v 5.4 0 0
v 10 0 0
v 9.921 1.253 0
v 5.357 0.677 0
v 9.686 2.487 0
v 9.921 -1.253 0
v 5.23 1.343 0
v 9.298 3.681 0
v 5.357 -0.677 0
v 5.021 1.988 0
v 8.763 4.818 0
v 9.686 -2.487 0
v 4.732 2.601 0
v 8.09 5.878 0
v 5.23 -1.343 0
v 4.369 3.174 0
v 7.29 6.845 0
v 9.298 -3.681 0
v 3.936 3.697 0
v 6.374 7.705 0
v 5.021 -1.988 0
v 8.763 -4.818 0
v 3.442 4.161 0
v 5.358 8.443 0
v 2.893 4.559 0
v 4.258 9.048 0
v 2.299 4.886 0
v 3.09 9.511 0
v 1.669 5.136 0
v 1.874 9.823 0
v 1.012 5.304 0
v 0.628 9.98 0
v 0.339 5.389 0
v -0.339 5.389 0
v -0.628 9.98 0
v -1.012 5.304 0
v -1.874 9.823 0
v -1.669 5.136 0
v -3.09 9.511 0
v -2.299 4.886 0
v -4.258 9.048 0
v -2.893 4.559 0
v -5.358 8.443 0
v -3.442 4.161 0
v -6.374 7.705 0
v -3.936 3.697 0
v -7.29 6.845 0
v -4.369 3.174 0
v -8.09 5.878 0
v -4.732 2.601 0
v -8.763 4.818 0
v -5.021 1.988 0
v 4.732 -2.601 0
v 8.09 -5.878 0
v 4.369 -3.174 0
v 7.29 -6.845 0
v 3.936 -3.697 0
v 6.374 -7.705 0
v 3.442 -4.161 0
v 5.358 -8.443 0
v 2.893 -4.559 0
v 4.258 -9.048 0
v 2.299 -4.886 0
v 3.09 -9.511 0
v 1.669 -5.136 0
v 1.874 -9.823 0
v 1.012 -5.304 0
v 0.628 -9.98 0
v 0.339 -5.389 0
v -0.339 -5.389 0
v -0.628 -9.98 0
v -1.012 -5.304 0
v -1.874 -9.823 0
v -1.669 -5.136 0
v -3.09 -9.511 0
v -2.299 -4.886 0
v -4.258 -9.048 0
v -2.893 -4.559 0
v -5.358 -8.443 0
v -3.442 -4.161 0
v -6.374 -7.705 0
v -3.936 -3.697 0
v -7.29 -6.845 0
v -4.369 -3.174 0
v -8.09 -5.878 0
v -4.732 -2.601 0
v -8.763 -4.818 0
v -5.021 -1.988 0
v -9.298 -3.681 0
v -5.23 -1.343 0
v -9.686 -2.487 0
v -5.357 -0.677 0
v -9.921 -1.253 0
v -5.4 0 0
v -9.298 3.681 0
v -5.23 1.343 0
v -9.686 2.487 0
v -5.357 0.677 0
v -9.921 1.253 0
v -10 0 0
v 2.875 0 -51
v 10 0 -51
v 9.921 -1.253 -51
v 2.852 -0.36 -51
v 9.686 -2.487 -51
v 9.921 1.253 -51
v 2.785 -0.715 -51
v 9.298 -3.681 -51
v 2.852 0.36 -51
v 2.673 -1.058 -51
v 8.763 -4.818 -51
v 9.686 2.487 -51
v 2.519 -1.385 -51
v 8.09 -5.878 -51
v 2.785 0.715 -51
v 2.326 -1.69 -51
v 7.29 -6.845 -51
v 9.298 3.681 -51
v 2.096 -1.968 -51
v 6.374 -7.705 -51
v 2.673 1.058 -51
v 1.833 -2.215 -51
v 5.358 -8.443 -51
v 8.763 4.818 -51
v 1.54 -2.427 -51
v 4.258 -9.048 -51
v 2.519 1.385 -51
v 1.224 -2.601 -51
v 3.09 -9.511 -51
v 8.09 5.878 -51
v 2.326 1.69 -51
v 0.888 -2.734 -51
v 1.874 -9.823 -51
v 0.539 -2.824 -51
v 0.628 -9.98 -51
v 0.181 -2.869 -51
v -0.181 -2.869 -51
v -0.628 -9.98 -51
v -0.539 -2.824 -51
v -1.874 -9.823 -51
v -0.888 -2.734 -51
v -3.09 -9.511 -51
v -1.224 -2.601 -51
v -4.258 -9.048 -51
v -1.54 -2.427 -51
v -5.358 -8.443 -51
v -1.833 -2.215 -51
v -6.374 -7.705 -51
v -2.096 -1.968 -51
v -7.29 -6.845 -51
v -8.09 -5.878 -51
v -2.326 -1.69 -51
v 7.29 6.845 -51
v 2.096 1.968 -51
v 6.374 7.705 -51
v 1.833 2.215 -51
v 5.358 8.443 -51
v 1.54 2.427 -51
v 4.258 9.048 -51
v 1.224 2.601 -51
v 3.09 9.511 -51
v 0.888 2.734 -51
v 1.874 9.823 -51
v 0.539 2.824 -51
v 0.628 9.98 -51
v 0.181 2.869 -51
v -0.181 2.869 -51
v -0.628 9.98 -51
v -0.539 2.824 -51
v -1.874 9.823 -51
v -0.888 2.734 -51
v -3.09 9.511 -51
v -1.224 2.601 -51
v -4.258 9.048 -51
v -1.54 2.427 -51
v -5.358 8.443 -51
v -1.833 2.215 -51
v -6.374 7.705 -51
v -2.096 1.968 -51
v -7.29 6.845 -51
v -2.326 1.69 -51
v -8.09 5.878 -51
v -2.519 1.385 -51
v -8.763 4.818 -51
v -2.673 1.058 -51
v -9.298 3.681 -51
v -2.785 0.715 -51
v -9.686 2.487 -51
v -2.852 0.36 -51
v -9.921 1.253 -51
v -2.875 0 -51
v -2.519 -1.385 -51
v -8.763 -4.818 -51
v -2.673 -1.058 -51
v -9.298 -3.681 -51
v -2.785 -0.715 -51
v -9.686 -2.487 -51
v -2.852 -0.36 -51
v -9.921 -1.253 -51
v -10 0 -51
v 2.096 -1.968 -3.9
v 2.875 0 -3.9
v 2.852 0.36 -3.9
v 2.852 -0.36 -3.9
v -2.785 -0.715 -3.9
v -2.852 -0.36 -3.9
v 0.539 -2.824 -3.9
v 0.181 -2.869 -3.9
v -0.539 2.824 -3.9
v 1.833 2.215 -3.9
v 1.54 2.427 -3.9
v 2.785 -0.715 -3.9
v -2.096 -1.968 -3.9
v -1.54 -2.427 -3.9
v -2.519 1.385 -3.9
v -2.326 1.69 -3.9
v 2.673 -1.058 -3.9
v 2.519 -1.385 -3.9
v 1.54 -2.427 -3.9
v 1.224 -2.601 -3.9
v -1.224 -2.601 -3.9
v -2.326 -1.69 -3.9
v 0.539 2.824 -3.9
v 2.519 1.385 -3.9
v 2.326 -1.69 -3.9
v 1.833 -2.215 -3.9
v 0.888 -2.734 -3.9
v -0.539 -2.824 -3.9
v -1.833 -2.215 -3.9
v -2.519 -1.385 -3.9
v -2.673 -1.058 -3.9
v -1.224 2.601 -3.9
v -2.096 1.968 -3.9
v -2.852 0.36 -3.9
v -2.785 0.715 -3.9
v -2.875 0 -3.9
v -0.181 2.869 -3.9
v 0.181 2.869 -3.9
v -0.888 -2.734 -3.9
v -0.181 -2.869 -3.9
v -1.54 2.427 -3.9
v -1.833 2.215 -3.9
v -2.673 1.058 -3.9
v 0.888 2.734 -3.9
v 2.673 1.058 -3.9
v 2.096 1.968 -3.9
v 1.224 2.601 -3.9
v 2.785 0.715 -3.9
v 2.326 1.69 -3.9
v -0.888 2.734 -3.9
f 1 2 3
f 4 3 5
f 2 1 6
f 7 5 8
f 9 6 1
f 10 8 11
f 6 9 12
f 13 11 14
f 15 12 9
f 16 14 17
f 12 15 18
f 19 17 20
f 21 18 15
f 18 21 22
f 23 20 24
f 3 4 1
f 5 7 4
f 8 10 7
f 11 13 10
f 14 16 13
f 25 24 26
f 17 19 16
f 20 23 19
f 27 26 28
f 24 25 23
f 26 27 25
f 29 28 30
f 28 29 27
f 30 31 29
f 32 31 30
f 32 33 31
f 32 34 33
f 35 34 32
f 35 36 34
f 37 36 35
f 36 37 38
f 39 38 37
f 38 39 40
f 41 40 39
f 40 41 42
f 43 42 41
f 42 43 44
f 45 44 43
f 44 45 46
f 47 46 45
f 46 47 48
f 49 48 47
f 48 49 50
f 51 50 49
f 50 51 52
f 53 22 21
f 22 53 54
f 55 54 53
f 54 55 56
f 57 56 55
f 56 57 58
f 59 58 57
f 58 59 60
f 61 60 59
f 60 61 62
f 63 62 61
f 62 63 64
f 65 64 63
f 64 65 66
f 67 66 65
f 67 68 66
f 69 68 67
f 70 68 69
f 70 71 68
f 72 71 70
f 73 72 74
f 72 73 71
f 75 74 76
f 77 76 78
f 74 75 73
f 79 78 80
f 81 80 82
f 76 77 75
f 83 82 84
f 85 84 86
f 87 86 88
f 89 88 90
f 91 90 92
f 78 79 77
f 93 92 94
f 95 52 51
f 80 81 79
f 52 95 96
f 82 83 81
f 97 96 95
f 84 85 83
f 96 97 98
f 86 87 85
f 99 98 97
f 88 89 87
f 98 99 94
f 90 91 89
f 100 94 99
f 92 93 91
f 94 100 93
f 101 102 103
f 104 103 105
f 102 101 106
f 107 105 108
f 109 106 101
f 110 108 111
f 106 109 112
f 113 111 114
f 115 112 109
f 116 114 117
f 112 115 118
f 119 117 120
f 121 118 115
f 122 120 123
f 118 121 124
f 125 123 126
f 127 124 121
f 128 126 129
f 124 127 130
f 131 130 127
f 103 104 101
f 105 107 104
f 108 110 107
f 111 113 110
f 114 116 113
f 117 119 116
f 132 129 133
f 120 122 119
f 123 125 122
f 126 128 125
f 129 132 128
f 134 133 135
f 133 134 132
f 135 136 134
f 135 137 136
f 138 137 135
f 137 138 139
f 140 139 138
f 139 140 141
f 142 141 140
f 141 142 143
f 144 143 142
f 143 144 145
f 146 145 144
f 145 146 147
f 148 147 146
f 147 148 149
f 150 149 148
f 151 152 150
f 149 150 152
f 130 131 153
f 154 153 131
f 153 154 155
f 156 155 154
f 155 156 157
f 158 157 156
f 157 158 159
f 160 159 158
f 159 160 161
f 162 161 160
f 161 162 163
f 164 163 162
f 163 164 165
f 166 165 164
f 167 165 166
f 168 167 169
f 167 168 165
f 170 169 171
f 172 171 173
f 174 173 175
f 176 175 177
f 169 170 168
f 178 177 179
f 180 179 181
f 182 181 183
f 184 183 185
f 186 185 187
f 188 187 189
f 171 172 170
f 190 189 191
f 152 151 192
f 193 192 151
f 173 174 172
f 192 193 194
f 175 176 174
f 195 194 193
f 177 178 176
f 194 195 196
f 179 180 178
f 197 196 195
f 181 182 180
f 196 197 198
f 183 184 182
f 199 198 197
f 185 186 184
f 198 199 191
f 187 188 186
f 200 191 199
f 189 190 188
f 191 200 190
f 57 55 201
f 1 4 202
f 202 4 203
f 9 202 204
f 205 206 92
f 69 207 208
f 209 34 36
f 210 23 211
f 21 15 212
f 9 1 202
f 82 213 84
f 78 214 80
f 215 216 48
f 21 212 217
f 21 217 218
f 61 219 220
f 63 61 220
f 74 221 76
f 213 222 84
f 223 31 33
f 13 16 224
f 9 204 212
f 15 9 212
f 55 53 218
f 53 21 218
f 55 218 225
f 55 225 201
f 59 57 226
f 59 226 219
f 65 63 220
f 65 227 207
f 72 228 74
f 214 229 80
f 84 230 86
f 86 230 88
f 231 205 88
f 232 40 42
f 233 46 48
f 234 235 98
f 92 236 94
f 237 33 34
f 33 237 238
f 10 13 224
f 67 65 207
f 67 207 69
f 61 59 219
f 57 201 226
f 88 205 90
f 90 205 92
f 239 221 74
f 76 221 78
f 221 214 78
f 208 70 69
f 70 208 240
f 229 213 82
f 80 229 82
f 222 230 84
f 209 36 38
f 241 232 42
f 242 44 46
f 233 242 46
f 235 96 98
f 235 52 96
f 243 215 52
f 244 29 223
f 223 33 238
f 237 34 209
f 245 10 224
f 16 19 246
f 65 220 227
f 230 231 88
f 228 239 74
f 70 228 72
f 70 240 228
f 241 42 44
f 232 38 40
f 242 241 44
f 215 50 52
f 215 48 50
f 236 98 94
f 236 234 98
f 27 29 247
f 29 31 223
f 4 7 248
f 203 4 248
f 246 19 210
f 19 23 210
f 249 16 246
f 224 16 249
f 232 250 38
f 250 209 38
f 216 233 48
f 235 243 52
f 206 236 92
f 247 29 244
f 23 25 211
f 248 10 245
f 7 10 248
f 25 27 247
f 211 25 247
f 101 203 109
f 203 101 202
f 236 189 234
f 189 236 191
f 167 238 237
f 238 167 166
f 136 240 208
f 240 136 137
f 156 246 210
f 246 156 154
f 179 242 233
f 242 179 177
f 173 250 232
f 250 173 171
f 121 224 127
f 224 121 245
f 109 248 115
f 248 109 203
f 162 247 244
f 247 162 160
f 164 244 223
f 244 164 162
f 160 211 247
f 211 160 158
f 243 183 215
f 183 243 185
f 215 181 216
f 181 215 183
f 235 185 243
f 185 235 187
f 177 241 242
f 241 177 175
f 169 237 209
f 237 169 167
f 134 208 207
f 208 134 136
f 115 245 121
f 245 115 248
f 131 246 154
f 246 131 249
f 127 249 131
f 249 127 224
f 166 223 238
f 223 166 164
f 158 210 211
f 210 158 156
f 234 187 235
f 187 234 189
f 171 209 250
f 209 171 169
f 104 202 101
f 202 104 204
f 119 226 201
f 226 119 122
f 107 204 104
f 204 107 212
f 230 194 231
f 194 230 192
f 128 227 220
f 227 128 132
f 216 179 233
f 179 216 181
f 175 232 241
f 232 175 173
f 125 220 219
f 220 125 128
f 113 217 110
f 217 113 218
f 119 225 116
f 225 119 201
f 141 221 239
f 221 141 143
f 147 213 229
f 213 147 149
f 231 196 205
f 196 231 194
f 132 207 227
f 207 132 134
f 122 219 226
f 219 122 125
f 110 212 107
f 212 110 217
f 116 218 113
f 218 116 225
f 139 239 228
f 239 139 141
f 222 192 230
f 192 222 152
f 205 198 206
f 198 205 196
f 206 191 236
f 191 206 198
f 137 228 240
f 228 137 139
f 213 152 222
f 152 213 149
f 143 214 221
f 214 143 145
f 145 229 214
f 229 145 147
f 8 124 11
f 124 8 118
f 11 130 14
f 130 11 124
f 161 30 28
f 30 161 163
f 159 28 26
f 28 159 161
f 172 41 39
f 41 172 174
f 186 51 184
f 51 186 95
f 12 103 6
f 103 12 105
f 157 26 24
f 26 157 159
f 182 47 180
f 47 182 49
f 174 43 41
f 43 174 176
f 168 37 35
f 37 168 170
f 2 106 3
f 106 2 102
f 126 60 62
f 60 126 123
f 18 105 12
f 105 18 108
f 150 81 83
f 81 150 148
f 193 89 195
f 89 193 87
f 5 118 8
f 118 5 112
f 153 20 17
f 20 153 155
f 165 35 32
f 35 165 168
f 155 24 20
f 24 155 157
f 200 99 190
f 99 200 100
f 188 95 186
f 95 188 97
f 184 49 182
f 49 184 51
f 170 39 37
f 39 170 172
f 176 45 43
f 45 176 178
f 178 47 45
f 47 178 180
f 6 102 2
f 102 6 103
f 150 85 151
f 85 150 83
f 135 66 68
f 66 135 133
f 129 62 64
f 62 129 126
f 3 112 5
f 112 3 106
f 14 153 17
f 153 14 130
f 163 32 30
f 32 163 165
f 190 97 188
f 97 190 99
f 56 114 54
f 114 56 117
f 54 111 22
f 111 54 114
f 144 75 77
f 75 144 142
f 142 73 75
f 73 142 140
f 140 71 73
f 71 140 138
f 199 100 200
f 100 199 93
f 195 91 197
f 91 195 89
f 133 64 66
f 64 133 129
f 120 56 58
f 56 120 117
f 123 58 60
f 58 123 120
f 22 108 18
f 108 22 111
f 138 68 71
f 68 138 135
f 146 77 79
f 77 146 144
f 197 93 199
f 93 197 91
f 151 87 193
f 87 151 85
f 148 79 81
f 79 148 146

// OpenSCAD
$fn = 50;


difference() {
	union() {
		translate(v = [0, 0, -51.0000000000]) {
			cylinder(h = 51, r = 10.0000000000);
		}
		cylinder(h = 0, r = 13.0000000000);
	}
	union() {
		translate(v = [0, 0, 0]) {
			rotate(a = [0, 0, 0]) {
				difference() {
					union() {
						#translate(v = [0, 0, -51.0000000000]) {
							cylinder(h = 51, r = 2.6000000000);
						}
						#translate(v = [0, 0, -3.9000000000]) {
							cylinder(h = 3.9000000000, r = 10.0000000000, r1 = 2.8750000000, r2 = 5.4000000000);
						}
						#translate(v = [0, 0, -51.0000000000]) {
							cylinder(h = 51, r = 2.8750000000);
						}
						#translate(v = [0, 0, -51.0000000000]) {
							cylinder(h = 51, r = 2.6000000000);
						}
					}
					union();
				}
			}
		}
	}
}
